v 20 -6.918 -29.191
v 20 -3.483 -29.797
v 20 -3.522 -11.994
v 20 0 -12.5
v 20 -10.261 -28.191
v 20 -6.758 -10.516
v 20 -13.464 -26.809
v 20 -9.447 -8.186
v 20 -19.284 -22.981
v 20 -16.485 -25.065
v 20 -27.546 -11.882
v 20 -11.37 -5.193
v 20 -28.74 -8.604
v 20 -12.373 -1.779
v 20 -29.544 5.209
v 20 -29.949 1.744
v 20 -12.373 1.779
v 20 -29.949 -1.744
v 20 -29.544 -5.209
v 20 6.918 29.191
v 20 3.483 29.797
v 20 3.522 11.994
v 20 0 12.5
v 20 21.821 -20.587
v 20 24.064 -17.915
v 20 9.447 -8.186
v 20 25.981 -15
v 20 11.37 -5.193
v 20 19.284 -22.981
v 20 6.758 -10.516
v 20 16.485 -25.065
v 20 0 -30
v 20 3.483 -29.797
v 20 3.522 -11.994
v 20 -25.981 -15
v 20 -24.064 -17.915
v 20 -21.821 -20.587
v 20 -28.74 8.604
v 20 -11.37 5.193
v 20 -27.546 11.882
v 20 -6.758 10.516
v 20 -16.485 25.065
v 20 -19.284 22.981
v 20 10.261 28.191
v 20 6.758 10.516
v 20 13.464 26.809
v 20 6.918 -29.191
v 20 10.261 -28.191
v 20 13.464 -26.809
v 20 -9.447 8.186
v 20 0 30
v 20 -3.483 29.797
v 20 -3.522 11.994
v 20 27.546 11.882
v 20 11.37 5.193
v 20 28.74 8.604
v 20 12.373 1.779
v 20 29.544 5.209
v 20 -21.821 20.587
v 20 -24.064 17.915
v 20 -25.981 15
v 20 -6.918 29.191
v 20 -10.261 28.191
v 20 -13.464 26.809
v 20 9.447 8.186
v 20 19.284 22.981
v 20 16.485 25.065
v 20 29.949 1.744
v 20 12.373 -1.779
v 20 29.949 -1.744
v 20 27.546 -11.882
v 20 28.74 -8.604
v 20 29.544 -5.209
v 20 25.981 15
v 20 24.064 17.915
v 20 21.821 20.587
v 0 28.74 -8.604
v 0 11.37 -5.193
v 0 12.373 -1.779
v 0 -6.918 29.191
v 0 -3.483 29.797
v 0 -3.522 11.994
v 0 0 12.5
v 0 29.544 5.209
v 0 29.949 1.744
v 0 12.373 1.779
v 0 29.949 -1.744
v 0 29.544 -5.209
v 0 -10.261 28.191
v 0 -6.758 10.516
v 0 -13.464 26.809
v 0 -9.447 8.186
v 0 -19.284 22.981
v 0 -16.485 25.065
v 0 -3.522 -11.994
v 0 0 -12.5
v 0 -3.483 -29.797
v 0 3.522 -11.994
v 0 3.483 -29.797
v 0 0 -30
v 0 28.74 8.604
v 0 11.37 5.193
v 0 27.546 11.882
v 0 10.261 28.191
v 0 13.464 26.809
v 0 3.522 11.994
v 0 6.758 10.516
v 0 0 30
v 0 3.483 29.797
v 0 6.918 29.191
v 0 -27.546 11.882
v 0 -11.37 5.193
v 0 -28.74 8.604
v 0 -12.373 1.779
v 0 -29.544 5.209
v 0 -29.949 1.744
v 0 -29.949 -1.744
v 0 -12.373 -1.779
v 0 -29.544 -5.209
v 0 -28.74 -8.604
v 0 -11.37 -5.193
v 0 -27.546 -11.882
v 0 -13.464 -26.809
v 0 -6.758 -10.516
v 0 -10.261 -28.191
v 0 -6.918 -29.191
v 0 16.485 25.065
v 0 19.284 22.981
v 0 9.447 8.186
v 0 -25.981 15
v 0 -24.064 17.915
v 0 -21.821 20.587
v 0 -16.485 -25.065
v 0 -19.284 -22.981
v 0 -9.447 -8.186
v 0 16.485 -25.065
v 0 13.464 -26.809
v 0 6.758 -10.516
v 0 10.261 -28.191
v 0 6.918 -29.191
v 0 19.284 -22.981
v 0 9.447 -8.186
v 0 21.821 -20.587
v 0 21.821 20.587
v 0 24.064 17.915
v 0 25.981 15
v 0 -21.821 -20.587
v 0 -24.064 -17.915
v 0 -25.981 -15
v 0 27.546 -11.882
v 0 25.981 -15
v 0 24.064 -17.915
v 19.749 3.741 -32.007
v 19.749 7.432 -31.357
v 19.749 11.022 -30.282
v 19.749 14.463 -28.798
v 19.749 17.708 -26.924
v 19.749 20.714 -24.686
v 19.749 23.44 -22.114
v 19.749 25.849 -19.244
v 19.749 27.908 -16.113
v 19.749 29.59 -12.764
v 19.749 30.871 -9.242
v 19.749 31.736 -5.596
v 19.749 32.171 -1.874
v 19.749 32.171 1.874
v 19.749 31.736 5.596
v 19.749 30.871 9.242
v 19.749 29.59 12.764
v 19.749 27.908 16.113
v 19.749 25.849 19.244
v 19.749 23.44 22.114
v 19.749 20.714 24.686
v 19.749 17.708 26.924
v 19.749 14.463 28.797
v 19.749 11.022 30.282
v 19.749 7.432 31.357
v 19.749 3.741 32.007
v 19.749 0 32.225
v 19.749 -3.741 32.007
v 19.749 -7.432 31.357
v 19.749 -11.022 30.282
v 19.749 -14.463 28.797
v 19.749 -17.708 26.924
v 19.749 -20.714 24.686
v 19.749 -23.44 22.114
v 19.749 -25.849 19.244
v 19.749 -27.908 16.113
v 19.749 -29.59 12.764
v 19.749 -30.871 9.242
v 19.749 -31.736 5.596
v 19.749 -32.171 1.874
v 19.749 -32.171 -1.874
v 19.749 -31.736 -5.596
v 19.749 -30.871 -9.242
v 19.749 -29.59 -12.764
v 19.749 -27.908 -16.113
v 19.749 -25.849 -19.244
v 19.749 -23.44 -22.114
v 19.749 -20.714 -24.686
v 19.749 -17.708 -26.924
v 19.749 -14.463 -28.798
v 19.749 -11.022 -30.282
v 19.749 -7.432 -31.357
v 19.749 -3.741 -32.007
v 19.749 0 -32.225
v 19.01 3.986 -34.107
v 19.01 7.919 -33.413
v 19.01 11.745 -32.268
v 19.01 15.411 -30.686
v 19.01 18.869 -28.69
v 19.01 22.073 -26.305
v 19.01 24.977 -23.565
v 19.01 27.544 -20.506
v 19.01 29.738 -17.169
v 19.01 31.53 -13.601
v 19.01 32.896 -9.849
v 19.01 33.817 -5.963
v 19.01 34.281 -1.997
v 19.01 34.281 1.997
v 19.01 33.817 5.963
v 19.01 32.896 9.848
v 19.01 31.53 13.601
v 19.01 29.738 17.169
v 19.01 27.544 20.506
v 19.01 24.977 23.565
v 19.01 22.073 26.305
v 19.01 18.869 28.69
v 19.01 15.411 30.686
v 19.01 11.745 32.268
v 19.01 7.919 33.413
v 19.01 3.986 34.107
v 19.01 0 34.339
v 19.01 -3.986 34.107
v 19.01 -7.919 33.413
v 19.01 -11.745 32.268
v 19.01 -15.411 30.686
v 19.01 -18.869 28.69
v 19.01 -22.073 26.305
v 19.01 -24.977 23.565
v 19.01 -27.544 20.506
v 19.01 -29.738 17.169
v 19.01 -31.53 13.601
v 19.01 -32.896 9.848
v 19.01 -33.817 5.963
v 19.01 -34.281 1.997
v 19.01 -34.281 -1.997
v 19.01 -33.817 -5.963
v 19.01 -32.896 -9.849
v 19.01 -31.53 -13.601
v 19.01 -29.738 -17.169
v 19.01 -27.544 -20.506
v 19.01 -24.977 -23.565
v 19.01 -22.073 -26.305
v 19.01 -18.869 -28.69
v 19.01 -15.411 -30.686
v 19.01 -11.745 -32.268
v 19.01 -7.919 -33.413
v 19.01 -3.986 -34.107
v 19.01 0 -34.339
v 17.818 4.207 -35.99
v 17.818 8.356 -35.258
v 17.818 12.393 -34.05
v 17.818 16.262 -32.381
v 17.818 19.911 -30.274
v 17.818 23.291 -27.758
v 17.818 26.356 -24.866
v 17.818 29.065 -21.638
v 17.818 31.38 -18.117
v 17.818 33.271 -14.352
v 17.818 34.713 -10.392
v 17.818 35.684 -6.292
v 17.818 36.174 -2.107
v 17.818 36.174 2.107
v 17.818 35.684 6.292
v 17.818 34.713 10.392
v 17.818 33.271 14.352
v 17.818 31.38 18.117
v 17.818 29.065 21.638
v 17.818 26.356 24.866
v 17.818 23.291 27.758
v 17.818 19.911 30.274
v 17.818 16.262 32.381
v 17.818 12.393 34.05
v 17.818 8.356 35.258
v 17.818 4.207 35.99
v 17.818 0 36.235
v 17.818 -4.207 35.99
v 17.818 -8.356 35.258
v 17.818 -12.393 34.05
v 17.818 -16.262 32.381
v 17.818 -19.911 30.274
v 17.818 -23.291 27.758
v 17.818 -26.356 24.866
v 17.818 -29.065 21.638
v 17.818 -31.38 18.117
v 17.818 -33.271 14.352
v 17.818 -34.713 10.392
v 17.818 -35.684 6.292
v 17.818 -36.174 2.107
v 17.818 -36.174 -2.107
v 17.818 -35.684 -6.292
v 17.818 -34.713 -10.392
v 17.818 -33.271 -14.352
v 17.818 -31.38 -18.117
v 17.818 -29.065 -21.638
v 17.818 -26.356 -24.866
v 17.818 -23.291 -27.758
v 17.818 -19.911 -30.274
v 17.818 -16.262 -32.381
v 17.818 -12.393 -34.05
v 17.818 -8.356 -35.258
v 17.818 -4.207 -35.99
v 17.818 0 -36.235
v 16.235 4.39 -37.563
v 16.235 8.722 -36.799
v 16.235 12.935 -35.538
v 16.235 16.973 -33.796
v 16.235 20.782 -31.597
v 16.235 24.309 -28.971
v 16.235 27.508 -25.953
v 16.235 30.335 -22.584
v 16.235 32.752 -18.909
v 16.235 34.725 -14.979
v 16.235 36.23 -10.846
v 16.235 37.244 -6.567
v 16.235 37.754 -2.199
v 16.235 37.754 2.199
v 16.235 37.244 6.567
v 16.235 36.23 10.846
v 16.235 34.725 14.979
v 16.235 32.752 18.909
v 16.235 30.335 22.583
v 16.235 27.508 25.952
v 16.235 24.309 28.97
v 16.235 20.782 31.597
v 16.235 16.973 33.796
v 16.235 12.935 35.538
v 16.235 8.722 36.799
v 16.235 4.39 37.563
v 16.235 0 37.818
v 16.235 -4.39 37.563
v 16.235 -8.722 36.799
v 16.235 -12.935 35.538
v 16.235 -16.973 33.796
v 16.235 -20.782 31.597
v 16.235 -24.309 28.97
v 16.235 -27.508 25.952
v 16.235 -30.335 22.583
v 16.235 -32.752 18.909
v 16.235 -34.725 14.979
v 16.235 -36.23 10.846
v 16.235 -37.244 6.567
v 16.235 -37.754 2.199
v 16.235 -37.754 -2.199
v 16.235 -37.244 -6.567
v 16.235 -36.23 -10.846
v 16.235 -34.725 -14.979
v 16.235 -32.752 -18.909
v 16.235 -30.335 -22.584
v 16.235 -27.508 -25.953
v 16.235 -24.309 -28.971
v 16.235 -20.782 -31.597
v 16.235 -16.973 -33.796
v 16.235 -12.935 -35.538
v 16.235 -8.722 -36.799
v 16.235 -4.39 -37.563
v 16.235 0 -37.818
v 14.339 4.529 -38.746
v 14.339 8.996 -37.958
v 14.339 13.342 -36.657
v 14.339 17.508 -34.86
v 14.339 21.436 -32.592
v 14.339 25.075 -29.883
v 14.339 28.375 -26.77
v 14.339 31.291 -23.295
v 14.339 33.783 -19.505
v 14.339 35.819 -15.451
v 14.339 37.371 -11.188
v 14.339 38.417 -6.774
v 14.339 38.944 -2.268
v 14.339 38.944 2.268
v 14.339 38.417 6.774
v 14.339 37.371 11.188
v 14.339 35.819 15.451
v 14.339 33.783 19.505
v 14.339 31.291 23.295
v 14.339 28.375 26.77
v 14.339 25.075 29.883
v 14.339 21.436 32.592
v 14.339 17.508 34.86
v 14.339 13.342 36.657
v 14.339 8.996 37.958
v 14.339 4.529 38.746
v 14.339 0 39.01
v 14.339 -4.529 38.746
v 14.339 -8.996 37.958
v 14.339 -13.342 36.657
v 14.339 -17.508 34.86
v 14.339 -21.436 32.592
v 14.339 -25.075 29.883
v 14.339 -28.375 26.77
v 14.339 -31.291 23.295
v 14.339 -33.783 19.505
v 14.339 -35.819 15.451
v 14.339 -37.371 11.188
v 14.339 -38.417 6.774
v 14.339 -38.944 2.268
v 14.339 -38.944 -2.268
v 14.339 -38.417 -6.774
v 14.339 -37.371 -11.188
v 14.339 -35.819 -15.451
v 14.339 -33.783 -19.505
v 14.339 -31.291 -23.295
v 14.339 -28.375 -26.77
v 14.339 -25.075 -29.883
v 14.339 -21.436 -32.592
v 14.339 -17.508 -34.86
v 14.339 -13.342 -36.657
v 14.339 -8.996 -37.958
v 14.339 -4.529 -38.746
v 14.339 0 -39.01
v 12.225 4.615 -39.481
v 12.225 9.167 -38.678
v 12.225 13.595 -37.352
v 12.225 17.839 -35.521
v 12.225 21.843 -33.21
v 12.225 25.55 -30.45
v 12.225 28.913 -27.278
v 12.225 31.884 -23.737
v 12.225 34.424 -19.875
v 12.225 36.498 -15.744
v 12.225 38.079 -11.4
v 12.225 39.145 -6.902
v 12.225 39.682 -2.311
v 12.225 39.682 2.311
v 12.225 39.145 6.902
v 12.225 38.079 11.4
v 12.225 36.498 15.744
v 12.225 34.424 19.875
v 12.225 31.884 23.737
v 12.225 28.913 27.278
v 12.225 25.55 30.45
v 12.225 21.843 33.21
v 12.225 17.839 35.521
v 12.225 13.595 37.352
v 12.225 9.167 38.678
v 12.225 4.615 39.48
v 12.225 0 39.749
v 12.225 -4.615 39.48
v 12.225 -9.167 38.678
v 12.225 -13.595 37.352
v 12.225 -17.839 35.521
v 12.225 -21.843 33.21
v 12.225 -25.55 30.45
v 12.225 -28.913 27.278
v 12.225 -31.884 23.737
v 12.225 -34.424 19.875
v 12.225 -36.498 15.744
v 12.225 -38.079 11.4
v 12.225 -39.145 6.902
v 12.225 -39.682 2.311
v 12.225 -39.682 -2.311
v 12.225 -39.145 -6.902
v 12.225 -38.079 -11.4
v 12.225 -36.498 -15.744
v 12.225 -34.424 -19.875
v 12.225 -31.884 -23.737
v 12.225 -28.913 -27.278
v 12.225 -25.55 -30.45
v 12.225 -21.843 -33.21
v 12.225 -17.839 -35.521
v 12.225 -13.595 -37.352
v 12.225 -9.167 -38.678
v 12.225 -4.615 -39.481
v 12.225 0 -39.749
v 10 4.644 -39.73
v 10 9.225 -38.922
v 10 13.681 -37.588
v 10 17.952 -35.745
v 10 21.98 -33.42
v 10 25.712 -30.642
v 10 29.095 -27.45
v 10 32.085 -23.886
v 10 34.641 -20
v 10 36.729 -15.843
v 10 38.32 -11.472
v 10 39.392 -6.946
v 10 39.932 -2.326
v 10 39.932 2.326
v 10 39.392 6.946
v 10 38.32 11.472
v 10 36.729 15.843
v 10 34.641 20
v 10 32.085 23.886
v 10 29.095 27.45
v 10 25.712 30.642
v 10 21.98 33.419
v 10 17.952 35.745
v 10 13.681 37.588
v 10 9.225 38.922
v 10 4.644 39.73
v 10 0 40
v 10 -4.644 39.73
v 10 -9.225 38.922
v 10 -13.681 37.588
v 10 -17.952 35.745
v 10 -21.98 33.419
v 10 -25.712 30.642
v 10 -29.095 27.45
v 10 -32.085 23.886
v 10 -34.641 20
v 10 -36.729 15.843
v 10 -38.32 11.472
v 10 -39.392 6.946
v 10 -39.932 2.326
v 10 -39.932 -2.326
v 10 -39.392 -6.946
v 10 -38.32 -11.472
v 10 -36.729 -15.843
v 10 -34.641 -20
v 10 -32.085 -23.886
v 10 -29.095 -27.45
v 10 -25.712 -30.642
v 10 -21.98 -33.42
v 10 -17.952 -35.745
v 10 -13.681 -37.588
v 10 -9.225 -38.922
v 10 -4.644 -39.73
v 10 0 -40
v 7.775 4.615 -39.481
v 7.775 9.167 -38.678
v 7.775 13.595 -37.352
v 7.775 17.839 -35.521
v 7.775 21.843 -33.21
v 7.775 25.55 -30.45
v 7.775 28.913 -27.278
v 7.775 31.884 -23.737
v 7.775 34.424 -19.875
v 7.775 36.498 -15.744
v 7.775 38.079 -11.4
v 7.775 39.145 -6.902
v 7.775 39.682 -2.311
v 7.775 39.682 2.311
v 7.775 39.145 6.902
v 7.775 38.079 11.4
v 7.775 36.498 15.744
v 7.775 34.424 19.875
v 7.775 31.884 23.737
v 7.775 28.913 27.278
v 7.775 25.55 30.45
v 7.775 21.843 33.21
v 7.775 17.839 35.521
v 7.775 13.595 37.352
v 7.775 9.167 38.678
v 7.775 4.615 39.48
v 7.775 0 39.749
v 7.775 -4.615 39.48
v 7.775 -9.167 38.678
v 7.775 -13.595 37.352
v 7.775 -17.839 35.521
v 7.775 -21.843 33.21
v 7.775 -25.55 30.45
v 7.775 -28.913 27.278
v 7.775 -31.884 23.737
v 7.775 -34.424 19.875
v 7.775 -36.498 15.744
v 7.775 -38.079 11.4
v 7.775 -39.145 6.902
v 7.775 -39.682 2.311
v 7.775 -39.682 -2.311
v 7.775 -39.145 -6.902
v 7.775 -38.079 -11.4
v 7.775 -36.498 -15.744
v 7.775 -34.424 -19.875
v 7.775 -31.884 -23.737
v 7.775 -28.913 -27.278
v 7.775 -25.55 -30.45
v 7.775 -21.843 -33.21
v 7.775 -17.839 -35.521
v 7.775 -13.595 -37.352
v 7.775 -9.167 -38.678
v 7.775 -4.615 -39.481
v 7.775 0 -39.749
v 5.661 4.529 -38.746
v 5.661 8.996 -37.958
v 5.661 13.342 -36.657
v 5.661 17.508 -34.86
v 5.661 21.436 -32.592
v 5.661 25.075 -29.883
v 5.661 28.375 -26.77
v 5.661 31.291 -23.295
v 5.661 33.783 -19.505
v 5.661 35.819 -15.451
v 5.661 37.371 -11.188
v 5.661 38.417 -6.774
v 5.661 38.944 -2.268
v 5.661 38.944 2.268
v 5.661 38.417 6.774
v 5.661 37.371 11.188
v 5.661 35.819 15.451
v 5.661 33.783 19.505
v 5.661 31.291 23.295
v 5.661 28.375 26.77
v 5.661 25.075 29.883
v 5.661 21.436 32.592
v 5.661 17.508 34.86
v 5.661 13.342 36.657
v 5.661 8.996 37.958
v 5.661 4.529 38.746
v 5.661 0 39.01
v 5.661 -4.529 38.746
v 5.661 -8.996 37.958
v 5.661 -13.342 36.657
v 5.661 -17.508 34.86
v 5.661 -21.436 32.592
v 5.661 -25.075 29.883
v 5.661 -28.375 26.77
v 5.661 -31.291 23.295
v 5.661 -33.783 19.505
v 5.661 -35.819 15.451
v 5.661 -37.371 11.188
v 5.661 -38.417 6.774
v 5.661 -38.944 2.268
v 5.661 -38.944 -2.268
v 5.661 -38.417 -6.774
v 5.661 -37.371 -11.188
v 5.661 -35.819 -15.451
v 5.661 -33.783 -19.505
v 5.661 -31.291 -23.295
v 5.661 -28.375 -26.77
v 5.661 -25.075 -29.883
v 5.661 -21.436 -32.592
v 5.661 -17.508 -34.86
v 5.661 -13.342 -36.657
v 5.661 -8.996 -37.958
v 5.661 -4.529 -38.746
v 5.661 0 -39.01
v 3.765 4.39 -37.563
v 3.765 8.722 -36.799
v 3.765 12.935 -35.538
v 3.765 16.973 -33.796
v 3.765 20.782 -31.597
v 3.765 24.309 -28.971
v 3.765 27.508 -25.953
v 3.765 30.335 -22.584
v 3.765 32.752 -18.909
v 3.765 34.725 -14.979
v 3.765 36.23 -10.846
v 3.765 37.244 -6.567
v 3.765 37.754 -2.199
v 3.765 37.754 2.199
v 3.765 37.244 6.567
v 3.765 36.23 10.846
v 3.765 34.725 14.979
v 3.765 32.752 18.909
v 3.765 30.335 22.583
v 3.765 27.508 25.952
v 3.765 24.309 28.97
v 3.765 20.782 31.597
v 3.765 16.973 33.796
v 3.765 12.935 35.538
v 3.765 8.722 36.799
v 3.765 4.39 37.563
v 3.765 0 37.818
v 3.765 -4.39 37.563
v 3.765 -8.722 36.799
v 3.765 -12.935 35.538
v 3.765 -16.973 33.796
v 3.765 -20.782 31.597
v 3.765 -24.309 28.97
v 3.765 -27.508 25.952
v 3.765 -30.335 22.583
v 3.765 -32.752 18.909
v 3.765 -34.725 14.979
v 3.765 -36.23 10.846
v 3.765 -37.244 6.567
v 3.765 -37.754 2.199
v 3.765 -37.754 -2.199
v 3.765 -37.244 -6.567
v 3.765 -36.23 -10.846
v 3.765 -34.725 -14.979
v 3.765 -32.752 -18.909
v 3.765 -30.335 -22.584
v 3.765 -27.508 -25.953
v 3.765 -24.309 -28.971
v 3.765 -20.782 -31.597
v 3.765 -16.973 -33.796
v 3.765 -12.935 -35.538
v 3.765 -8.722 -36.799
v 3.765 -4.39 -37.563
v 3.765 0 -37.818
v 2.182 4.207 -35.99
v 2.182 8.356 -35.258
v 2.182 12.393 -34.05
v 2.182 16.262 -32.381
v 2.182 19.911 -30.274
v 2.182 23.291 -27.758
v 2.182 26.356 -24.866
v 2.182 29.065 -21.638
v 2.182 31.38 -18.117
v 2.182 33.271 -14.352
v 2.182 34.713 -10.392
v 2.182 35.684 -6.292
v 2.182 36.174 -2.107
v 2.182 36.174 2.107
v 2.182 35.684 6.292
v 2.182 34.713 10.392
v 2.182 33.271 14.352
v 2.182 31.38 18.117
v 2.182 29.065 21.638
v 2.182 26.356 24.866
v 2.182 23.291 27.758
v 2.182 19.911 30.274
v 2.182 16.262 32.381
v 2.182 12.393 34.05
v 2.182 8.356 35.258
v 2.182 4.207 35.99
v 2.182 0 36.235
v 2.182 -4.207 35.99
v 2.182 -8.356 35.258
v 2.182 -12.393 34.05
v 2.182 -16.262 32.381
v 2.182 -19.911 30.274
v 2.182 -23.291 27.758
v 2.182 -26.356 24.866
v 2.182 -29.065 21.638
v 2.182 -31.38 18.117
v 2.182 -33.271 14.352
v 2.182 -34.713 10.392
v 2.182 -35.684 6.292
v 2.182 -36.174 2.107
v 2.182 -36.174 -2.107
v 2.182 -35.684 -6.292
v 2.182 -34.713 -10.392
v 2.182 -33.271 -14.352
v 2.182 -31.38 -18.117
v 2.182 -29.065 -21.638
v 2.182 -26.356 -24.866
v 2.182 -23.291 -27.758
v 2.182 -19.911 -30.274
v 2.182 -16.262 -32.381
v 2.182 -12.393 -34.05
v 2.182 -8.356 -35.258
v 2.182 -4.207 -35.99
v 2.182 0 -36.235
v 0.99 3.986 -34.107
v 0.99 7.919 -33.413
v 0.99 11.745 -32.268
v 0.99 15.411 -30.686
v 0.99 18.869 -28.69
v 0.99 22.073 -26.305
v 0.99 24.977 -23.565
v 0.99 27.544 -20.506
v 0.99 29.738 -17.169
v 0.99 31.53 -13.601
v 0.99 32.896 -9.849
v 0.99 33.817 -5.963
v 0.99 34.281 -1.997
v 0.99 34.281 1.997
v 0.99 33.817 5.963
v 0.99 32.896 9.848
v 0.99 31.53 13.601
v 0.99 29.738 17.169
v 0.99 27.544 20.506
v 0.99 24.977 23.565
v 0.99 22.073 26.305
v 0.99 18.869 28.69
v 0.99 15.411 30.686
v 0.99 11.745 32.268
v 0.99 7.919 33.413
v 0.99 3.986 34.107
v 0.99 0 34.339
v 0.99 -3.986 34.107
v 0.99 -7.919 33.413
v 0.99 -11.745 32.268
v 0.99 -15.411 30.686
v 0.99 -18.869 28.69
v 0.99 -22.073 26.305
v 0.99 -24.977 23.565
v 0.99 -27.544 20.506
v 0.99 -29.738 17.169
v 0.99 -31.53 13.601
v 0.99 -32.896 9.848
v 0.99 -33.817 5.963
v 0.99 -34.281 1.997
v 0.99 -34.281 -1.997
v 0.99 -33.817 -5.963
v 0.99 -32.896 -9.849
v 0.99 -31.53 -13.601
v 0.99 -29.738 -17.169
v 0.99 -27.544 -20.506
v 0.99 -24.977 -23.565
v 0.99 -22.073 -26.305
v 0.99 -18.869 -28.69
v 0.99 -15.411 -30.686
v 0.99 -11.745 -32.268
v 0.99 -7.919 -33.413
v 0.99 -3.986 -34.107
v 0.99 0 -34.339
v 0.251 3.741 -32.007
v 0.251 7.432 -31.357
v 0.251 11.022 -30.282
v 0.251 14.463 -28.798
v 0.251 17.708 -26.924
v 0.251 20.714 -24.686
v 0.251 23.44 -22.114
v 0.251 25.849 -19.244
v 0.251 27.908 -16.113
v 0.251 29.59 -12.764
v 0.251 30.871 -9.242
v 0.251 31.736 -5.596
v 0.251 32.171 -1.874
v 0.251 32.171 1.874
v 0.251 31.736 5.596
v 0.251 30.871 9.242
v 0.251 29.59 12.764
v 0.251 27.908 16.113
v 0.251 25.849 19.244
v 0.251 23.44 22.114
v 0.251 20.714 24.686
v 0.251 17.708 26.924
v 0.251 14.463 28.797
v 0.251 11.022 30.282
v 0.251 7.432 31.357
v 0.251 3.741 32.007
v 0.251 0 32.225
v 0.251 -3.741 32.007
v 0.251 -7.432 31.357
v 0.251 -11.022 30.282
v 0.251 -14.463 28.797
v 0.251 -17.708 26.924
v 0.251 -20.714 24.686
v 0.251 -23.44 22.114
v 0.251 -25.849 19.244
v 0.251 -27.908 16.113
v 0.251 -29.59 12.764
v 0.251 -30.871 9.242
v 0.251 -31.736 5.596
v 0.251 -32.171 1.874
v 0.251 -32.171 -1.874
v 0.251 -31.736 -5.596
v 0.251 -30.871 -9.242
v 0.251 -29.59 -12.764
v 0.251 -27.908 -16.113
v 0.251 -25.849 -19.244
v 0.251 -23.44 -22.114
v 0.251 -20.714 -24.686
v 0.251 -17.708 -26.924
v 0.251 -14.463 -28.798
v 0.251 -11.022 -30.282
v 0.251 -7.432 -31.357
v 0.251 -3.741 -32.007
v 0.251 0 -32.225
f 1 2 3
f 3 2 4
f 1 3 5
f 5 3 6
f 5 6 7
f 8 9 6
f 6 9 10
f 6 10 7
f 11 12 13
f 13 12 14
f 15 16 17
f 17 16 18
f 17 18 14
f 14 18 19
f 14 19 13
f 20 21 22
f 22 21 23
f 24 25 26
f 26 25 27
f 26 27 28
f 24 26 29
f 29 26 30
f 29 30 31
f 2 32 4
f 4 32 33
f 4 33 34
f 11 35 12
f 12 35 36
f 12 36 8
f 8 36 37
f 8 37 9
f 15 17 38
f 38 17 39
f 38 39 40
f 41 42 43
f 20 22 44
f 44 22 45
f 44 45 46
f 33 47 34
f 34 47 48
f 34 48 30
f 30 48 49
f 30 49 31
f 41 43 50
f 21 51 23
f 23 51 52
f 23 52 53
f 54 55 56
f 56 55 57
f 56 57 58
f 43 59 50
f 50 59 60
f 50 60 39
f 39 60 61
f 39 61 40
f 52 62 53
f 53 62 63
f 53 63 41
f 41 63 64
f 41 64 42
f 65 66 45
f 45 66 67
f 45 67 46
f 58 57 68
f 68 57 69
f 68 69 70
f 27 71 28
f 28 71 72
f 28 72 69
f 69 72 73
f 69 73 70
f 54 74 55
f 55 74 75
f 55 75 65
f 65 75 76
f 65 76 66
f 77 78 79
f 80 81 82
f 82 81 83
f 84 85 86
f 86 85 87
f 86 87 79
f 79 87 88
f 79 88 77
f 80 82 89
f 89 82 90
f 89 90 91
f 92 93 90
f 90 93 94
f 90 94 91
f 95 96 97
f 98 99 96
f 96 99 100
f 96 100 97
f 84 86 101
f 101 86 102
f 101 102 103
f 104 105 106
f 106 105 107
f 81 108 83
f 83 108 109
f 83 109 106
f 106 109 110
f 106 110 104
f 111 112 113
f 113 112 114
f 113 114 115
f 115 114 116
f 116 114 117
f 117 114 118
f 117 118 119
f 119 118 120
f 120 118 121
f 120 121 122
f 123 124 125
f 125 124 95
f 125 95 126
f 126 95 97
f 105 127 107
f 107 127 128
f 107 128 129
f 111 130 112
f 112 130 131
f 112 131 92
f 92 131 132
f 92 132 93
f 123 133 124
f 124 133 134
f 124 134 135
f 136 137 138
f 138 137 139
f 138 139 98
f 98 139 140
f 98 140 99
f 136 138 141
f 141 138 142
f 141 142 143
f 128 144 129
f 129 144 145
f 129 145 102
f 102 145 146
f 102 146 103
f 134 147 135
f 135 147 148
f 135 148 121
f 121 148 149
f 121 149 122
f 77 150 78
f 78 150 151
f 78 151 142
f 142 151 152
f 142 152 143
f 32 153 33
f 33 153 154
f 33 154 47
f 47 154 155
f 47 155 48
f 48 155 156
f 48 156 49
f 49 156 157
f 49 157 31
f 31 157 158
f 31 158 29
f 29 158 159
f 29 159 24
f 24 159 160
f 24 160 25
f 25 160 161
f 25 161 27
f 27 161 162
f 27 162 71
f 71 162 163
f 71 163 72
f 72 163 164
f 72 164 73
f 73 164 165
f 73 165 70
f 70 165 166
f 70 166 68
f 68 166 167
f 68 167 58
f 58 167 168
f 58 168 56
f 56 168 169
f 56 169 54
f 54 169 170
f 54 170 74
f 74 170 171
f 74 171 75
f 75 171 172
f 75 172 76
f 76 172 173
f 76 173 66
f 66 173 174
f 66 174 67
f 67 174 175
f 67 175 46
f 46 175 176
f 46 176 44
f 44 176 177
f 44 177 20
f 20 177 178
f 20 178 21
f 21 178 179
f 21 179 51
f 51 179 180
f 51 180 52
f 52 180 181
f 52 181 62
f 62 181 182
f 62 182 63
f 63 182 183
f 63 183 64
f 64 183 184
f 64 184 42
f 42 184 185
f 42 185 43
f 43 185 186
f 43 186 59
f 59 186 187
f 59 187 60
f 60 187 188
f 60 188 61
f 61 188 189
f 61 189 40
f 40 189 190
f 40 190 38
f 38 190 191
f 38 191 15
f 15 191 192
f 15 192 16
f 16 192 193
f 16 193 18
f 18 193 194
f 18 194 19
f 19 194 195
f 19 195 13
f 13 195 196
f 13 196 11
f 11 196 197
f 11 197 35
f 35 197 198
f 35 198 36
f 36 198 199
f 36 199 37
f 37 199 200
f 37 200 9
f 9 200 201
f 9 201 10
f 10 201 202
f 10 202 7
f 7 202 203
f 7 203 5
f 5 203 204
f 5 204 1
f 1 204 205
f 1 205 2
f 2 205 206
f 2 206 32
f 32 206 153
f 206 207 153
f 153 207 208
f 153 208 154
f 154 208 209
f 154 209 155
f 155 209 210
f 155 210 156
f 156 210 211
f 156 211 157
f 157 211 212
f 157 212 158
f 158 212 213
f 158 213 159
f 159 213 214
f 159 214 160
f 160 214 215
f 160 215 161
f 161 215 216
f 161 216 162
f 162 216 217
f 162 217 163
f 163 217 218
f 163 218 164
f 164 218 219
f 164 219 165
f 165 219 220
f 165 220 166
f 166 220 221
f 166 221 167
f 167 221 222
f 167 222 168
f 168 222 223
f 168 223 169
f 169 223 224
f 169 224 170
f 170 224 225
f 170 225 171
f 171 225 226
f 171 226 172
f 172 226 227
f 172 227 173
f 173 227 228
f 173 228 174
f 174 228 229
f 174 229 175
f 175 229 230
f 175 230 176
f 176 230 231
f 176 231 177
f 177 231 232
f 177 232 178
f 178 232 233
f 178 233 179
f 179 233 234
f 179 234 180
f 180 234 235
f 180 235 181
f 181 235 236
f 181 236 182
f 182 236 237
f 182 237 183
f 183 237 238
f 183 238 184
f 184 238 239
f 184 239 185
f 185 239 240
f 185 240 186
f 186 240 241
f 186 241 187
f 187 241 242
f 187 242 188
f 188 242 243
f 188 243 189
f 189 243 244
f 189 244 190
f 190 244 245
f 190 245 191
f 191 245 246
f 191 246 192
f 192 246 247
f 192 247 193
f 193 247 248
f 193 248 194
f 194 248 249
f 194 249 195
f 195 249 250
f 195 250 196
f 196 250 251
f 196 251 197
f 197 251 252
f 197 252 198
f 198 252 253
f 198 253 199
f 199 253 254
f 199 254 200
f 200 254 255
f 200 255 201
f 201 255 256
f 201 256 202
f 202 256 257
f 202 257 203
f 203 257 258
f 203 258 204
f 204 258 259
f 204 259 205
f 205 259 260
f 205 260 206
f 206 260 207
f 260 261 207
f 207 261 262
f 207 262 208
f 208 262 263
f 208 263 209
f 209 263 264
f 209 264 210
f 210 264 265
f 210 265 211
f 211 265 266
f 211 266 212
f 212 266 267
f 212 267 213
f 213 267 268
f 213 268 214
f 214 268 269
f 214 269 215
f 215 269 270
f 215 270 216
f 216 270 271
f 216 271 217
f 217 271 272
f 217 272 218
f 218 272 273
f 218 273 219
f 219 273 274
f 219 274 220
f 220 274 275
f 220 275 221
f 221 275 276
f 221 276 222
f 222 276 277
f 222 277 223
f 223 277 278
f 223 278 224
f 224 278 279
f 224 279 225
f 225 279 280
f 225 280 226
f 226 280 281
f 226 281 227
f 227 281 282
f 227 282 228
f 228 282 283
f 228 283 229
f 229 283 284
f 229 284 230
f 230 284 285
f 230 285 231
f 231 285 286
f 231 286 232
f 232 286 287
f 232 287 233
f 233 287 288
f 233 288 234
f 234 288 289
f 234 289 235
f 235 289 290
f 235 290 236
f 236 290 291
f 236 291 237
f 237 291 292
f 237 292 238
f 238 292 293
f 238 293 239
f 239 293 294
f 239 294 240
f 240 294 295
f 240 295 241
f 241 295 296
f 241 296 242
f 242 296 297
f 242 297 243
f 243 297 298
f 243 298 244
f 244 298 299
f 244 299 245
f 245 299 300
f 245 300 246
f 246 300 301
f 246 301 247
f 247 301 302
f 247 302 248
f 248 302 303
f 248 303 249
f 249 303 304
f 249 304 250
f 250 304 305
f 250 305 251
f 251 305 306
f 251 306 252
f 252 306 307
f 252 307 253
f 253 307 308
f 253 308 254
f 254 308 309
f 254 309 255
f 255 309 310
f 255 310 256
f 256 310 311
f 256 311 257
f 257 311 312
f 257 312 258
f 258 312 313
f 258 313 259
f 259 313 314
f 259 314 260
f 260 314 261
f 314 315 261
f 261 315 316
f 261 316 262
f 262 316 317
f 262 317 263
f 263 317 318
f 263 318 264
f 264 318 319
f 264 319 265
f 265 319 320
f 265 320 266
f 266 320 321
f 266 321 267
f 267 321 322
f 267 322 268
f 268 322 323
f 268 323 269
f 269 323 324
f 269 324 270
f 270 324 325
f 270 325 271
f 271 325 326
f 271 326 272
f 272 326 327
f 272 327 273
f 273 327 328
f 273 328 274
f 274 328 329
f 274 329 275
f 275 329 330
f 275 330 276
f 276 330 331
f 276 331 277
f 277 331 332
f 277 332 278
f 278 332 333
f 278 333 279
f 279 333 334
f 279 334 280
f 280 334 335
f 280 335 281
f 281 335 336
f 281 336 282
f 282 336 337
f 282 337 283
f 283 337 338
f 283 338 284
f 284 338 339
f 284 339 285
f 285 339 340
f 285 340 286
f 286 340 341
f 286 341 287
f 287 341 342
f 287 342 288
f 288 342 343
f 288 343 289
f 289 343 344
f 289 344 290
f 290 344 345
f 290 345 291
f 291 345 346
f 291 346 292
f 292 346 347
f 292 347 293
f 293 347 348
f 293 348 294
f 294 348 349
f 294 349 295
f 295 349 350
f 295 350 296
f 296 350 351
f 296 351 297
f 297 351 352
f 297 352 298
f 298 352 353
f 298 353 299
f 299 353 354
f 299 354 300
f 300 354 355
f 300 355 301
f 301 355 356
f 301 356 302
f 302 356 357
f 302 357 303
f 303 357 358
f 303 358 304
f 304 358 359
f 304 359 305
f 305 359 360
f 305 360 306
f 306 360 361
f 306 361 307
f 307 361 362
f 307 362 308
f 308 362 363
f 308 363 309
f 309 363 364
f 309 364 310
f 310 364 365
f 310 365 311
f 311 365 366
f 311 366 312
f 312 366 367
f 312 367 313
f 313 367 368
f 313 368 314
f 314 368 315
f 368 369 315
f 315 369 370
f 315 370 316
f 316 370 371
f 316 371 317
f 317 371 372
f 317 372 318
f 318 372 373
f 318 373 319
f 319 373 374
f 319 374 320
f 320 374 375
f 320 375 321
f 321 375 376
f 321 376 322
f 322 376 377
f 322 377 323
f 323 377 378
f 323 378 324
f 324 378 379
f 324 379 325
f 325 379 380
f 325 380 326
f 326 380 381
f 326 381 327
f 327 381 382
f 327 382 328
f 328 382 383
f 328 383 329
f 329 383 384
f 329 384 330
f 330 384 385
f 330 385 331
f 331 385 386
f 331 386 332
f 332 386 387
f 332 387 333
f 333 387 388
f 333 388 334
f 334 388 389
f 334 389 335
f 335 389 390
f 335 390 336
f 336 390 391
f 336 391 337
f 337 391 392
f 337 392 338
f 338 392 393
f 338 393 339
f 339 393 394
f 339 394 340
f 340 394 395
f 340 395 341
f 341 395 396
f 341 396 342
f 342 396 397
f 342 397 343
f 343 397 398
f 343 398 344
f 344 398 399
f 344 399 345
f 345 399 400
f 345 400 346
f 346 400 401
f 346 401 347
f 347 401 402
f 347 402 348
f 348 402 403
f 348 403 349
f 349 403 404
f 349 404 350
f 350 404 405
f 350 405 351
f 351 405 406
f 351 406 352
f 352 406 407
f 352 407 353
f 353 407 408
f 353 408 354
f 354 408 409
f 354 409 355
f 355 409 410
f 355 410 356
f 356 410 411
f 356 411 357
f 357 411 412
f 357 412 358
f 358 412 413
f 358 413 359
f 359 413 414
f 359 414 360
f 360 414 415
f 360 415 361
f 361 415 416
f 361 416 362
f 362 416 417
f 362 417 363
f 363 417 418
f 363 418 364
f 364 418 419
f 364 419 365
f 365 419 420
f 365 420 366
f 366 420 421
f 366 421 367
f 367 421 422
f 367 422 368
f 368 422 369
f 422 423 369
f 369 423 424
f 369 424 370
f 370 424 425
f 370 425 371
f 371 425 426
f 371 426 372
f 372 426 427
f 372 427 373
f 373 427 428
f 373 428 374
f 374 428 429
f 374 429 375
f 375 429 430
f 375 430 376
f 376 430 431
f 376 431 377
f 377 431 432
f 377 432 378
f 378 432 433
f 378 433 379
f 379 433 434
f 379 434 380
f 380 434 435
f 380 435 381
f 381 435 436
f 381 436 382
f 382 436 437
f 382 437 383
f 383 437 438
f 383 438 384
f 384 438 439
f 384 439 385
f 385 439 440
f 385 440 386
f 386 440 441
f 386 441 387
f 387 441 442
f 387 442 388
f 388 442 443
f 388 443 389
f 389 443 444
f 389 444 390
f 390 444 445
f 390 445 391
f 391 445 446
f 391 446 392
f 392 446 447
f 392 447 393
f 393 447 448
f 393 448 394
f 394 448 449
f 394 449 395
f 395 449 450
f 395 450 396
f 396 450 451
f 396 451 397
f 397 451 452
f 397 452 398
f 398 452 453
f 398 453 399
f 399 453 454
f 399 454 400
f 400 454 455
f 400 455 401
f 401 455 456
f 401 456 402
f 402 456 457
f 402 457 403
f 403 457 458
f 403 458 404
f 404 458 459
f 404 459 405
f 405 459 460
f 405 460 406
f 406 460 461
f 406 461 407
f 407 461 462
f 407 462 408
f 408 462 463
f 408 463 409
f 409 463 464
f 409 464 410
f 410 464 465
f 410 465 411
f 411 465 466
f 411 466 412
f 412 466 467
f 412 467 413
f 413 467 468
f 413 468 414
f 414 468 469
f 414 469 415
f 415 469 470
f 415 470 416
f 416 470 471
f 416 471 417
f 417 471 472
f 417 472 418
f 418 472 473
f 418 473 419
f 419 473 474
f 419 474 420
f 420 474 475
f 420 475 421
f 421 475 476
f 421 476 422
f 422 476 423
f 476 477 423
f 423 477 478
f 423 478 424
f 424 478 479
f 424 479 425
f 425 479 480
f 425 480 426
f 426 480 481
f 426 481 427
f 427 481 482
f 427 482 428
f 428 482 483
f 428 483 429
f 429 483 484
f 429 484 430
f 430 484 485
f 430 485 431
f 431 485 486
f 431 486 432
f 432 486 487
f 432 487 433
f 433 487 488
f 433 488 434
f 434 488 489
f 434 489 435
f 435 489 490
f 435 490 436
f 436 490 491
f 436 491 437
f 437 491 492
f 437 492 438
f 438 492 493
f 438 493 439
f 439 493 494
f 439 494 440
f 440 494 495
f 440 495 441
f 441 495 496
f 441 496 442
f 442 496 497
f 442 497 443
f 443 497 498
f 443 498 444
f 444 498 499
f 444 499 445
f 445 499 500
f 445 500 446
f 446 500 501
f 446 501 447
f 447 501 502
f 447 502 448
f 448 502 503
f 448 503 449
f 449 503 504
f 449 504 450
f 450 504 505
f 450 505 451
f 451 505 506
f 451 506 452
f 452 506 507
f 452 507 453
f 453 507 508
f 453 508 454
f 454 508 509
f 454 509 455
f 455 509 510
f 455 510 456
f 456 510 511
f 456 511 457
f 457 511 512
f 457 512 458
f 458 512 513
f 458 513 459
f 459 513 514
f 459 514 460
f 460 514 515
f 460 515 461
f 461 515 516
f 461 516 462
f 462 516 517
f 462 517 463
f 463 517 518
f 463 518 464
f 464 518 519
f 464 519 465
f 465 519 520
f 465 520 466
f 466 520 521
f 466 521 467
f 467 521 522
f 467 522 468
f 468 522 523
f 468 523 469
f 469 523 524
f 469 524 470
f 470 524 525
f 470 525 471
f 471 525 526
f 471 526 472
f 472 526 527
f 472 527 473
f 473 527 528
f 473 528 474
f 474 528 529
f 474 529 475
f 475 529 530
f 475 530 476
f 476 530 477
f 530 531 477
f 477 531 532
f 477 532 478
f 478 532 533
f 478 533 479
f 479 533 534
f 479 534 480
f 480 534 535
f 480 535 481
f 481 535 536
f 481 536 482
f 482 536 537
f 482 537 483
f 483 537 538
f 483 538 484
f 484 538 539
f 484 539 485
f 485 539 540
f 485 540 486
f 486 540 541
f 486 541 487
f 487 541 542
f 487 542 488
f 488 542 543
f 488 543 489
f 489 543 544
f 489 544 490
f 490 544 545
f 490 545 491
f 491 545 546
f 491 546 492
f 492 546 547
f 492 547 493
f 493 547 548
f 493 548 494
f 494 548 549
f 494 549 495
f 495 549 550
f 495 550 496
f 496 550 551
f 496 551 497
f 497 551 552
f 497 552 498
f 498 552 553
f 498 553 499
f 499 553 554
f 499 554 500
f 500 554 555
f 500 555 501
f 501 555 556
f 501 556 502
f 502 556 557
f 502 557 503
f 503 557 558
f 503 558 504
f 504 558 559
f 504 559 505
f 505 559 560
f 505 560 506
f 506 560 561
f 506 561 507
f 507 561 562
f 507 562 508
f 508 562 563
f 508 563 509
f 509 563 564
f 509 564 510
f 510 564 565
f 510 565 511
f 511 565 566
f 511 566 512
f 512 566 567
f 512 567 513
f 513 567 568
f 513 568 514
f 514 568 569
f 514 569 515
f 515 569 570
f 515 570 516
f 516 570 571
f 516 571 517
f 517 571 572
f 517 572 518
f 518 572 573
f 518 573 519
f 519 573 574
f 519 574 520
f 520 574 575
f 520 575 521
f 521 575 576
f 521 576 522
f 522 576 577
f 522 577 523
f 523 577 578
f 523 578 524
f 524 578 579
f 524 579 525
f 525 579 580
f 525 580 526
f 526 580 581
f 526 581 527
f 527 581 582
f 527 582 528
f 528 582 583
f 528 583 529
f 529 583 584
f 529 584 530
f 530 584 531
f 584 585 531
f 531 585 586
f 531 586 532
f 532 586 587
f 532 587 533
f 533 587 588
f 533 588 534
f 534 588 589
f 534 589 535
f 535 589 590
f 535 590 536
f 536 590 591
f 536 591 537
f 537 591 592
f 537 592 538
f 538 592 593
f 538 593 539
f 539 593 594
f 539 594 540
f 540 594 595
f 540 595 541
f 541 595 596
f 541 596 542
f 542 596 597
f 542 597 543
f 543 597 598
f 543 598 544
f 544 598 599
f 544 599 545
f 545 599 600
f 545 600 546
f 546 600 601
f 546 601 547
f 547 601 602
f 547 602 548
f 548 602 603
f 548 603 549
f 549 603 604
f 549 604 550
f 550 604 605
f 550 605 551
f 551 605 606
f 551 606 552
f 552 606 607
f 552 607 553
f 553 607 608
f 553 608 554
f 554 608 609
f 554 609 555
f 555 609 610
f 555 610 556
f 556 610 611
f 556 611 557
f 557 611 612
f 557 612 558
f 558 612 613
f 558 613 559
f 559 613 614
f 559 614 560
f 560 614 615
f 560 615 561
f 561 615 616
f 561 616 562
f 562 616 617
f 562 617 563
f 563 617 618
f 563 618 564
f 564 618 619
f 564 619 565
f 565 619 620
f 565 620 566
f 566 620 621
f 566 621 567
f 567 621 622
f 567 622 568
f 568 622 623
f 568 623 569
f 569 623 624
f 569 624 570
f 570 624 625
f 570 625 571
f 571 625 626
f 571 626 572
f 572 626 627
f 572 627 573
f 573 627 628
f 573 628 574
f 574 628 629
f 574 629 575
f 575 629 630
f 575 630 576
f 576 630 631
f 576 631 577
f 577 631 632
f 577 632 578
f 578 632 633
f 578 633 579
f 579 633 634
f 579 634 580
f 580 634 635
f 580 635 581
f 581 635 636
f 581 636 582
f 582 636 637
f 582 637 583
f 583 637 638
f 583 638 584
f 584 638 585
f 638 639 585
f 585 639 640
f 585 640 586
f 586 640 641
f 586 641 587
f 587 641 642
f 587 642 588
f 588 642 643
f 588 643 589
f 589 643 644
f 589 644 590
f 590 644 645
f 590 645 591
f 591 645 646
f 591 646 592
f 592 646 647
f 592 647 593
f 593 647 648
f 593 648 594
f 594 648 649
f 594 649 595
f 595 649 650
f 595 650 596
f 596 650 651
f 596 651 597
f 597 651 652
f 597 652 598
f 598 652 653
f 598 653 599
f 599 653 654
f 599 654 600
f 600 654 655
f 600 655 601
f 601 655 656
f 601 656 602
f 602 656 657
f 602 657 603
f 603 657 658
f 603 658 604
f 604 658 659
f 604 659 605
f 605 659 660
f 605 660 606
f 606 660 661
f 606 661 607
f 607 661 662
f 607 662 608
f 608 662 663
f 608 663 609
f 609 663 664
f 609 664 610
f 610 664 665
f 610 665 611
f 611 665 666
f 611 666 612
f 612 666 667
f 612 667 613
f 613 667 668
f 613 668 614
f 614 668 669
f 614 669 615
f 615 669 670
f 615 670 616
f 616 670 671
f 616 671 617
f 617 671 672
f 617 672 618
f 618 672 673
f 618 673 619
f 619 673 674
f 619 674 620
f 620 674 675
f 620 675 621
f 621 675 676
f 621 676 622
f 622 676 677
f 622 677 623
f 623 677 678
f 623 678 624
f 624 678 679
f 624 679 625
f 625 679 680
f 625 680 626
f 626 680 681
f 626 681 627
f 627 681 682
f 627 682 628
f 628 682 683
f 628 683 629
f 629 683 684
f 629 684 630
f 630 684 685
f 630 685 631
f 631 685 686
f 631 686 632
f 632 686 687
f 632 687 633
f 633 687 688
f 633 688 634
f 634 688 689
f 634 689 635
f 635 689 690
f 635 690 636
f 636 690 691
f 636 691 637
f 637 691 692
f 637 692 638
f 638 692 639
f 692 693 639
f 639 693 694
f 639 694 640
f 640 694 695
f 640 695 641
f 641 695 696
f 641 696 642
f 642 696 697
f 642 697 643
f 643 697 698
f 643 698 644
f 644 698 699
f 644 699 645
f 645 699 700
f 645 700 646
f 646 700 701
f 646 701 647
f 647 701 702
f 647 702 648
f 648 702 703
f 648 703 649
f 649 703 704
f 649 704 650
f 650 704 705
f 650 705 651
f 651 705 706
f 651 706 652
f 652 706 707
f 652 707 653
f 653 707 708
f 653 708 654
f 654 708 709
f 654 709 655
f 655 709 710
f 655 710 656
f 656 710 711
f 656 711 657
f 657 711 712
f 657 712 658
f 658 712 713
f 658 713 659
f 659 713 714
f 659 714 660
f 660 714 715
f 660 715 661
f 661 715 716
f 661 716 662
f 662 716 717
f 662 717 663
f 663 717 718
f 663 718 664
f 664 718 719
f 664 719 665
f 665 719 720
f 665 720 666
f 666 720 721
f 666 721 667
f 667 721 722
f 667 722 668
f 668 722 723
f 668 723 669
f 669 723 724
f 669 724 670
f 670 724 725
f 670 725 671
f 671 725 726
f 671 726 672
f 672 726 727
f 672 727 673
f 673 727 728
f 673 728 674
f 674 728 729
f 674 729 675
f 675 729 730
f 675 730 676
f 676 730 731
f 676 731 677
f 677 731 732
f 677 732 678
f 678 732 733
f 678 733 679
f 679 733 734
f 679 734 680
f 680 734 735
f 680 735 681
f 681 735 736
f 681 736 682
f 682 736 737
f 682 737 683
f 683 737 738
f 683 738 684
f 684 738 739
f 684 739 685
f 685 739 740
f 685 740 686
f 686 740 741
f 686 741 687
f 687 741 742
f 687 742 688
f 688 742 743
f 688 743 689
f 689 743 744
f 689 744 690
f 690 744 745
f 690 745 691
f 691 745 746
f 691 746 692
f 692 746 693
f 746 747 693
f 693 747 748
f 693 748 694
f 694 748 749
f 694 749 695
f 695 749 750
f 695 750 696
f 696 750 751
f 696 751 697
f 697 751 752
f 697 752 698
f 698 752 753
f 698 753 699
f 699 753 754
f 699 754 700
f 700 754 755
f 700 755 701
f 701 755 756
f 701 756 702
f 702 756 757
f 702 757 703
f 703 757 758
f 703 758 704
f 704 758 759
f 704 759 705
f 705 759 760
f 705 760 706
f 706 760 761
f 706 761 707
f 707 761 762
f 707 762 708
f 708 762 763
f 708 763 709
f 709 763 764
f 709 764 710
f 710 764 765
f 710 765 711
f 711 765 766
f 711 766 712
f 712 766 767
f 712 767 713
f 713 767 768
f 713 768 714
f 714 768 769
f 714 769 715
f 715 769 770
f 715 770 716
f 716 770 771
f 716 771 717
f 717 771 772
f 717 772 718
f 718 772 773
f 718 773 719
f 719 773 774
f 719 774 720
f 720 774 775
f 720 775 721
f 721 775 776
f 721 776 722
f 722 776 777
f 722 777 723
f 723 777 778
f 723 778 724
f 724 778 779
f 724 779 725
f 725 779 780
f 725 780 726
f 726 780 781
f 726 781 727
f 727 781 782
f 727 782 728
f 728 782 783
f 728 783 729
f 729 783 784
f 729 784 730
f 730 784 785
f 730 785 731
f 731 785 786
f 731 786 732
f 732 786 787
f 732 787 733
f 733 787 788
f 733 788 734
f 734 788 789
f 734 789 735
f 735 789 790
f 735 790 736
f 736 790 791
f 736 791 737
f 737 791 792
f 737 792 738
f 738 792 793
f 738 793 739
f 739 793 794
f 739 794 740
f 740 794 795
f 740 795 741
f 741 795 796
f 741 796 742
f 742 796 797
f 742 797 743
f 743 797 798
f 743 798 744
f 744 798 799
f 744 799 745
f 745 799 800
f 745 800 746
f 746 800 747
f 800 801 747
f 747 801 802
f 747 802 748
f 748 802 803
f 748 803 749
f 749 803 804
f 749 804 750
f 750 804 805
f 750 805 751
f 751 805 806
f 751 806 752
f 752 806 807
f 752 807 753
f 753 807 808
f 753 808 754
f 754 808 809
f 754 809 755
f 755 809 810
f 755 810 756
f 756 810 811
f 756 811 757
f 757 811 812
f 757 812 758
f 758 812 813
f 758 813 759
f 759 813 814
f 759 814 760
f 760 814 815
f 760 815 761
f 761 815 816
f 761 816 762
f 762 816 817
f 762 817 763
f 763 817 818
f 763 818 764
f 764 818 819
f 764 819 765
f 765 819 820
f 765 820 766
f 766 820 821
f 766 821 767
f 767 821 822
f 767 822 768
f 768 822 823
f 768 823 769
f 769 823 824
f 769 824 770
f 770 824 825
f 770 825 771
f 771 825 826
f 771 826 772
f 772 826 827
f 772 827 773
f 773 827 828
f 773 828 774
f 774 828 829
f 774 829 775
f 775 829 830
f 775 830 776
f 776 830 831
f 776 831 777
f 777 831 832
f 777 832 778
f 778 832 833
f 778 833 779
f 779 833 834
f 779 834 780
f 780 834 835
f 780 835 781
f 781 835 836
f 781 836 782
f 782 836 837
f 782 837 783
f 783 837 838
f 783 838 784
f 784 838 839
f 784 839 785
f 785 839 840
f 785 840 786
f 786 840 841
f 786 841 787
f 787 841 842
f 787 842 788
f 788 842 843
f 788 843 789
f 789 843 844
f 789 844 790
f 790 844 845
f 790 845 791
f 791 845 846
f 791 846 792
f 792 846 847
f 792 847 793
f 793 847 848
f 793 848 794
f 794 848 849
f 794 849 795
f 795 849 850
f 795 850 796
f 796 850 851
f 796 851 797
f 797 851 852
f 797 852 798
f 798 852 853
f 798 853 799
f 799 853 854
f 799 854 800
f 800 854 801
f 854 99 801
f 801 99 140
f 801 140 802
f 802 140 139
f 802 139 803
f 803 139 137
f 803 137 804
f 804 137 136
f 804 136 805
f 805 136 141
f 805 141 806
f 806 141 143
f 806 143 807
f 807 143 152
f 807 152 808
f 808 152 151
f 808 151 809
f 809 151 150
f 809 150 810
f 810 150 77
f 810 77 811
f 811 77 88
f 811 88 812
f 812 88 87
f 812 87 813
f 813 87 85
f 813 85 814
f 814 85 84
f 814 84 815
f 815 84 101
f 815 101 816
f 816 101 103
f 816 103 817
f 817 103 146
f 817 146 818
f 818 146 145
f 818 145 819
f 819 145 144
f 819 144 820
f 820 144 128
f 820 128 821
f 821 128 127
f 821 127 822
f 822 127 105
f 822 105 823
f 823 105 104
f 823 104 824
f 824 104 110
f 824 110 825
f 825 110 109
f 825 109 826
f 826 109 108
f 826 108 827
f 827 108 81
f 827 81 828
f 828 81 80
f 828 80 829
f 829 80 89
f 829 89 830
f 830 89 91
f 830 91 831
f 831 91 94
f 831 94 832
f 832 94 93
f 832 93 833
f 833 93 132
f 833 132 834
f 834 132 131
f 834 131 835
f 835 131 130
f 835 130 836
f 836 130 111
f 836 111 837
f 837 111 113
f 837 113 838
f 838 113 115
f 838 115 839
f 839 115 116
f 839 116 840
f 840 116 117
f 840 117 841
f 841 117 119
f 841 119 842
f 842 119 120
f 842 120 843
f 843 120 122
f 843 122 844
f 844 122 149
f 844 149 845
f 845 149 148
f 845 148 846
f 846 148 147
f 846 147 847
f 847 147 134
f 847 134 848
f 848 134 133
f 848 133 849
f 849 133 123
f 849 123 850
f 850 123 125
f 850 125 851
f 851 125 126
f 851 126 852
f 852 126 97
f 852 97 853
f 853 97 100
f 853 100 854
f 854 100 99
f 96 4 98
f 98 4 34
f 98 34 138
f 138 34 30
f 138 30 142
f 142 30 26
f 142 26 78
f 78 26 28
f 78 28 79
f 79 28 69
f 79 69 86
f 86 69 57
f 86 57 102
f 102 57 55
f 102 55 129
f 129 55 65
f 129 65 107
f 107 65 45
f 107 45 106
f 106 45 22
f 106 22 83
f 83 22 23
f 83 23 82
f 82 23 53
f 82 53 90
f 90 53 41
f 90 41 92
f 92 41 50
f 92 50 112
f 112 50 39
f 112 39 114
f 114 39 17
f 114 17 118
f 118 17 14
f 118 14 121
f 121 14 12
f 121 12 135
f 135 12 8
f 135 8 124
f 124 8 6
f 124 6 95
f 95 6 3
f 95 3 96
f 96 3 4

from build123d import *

# Parameters (mm, degrees)
SKETCH1_R           = 40
BOSS_EXTRUDE1_DEPTH = 20
FILLET2_R           = 10
SKETCH2_R           = 12.5
CUT_EXTRUDE1_DEPTH  = 20


with BuildPart() as part:
    # Sketch1 → Boss-Extrude1 (new body)
    with BuildSketch(Plane(origin=(0, 0, 0), x_dir=(0, 0, -1), z_dir=(1, 0, 0))):
        Circle(SKETCH1_R)
    extrude(amount=BOSS_EXTRUDE1_DEPTH)

    # Fillet2
    fillet2_edges = [part.edges().sort_by_distance(p)[0] for p in [
        (0, 0, 40),
        (20, 0, 40),
    ]]
    fillet(fillet2_edges, radius=FILLET2_R - 0.0001)  # a hair under: the kernel refuses the full size

    # Sketch2 → Cut-Extrude1 (cut)
    with BuildSketch(Plane(origin=(20, 0, 0), x_dir=(0, 0, -1), z_dir=(1, 0, 0))):
        Circle(SKETCH2_R)
    extrude(amount=-CUT_EXTRUDE1_DEPTH, mode=Mode.SUBTRACT)


solid = part.part
